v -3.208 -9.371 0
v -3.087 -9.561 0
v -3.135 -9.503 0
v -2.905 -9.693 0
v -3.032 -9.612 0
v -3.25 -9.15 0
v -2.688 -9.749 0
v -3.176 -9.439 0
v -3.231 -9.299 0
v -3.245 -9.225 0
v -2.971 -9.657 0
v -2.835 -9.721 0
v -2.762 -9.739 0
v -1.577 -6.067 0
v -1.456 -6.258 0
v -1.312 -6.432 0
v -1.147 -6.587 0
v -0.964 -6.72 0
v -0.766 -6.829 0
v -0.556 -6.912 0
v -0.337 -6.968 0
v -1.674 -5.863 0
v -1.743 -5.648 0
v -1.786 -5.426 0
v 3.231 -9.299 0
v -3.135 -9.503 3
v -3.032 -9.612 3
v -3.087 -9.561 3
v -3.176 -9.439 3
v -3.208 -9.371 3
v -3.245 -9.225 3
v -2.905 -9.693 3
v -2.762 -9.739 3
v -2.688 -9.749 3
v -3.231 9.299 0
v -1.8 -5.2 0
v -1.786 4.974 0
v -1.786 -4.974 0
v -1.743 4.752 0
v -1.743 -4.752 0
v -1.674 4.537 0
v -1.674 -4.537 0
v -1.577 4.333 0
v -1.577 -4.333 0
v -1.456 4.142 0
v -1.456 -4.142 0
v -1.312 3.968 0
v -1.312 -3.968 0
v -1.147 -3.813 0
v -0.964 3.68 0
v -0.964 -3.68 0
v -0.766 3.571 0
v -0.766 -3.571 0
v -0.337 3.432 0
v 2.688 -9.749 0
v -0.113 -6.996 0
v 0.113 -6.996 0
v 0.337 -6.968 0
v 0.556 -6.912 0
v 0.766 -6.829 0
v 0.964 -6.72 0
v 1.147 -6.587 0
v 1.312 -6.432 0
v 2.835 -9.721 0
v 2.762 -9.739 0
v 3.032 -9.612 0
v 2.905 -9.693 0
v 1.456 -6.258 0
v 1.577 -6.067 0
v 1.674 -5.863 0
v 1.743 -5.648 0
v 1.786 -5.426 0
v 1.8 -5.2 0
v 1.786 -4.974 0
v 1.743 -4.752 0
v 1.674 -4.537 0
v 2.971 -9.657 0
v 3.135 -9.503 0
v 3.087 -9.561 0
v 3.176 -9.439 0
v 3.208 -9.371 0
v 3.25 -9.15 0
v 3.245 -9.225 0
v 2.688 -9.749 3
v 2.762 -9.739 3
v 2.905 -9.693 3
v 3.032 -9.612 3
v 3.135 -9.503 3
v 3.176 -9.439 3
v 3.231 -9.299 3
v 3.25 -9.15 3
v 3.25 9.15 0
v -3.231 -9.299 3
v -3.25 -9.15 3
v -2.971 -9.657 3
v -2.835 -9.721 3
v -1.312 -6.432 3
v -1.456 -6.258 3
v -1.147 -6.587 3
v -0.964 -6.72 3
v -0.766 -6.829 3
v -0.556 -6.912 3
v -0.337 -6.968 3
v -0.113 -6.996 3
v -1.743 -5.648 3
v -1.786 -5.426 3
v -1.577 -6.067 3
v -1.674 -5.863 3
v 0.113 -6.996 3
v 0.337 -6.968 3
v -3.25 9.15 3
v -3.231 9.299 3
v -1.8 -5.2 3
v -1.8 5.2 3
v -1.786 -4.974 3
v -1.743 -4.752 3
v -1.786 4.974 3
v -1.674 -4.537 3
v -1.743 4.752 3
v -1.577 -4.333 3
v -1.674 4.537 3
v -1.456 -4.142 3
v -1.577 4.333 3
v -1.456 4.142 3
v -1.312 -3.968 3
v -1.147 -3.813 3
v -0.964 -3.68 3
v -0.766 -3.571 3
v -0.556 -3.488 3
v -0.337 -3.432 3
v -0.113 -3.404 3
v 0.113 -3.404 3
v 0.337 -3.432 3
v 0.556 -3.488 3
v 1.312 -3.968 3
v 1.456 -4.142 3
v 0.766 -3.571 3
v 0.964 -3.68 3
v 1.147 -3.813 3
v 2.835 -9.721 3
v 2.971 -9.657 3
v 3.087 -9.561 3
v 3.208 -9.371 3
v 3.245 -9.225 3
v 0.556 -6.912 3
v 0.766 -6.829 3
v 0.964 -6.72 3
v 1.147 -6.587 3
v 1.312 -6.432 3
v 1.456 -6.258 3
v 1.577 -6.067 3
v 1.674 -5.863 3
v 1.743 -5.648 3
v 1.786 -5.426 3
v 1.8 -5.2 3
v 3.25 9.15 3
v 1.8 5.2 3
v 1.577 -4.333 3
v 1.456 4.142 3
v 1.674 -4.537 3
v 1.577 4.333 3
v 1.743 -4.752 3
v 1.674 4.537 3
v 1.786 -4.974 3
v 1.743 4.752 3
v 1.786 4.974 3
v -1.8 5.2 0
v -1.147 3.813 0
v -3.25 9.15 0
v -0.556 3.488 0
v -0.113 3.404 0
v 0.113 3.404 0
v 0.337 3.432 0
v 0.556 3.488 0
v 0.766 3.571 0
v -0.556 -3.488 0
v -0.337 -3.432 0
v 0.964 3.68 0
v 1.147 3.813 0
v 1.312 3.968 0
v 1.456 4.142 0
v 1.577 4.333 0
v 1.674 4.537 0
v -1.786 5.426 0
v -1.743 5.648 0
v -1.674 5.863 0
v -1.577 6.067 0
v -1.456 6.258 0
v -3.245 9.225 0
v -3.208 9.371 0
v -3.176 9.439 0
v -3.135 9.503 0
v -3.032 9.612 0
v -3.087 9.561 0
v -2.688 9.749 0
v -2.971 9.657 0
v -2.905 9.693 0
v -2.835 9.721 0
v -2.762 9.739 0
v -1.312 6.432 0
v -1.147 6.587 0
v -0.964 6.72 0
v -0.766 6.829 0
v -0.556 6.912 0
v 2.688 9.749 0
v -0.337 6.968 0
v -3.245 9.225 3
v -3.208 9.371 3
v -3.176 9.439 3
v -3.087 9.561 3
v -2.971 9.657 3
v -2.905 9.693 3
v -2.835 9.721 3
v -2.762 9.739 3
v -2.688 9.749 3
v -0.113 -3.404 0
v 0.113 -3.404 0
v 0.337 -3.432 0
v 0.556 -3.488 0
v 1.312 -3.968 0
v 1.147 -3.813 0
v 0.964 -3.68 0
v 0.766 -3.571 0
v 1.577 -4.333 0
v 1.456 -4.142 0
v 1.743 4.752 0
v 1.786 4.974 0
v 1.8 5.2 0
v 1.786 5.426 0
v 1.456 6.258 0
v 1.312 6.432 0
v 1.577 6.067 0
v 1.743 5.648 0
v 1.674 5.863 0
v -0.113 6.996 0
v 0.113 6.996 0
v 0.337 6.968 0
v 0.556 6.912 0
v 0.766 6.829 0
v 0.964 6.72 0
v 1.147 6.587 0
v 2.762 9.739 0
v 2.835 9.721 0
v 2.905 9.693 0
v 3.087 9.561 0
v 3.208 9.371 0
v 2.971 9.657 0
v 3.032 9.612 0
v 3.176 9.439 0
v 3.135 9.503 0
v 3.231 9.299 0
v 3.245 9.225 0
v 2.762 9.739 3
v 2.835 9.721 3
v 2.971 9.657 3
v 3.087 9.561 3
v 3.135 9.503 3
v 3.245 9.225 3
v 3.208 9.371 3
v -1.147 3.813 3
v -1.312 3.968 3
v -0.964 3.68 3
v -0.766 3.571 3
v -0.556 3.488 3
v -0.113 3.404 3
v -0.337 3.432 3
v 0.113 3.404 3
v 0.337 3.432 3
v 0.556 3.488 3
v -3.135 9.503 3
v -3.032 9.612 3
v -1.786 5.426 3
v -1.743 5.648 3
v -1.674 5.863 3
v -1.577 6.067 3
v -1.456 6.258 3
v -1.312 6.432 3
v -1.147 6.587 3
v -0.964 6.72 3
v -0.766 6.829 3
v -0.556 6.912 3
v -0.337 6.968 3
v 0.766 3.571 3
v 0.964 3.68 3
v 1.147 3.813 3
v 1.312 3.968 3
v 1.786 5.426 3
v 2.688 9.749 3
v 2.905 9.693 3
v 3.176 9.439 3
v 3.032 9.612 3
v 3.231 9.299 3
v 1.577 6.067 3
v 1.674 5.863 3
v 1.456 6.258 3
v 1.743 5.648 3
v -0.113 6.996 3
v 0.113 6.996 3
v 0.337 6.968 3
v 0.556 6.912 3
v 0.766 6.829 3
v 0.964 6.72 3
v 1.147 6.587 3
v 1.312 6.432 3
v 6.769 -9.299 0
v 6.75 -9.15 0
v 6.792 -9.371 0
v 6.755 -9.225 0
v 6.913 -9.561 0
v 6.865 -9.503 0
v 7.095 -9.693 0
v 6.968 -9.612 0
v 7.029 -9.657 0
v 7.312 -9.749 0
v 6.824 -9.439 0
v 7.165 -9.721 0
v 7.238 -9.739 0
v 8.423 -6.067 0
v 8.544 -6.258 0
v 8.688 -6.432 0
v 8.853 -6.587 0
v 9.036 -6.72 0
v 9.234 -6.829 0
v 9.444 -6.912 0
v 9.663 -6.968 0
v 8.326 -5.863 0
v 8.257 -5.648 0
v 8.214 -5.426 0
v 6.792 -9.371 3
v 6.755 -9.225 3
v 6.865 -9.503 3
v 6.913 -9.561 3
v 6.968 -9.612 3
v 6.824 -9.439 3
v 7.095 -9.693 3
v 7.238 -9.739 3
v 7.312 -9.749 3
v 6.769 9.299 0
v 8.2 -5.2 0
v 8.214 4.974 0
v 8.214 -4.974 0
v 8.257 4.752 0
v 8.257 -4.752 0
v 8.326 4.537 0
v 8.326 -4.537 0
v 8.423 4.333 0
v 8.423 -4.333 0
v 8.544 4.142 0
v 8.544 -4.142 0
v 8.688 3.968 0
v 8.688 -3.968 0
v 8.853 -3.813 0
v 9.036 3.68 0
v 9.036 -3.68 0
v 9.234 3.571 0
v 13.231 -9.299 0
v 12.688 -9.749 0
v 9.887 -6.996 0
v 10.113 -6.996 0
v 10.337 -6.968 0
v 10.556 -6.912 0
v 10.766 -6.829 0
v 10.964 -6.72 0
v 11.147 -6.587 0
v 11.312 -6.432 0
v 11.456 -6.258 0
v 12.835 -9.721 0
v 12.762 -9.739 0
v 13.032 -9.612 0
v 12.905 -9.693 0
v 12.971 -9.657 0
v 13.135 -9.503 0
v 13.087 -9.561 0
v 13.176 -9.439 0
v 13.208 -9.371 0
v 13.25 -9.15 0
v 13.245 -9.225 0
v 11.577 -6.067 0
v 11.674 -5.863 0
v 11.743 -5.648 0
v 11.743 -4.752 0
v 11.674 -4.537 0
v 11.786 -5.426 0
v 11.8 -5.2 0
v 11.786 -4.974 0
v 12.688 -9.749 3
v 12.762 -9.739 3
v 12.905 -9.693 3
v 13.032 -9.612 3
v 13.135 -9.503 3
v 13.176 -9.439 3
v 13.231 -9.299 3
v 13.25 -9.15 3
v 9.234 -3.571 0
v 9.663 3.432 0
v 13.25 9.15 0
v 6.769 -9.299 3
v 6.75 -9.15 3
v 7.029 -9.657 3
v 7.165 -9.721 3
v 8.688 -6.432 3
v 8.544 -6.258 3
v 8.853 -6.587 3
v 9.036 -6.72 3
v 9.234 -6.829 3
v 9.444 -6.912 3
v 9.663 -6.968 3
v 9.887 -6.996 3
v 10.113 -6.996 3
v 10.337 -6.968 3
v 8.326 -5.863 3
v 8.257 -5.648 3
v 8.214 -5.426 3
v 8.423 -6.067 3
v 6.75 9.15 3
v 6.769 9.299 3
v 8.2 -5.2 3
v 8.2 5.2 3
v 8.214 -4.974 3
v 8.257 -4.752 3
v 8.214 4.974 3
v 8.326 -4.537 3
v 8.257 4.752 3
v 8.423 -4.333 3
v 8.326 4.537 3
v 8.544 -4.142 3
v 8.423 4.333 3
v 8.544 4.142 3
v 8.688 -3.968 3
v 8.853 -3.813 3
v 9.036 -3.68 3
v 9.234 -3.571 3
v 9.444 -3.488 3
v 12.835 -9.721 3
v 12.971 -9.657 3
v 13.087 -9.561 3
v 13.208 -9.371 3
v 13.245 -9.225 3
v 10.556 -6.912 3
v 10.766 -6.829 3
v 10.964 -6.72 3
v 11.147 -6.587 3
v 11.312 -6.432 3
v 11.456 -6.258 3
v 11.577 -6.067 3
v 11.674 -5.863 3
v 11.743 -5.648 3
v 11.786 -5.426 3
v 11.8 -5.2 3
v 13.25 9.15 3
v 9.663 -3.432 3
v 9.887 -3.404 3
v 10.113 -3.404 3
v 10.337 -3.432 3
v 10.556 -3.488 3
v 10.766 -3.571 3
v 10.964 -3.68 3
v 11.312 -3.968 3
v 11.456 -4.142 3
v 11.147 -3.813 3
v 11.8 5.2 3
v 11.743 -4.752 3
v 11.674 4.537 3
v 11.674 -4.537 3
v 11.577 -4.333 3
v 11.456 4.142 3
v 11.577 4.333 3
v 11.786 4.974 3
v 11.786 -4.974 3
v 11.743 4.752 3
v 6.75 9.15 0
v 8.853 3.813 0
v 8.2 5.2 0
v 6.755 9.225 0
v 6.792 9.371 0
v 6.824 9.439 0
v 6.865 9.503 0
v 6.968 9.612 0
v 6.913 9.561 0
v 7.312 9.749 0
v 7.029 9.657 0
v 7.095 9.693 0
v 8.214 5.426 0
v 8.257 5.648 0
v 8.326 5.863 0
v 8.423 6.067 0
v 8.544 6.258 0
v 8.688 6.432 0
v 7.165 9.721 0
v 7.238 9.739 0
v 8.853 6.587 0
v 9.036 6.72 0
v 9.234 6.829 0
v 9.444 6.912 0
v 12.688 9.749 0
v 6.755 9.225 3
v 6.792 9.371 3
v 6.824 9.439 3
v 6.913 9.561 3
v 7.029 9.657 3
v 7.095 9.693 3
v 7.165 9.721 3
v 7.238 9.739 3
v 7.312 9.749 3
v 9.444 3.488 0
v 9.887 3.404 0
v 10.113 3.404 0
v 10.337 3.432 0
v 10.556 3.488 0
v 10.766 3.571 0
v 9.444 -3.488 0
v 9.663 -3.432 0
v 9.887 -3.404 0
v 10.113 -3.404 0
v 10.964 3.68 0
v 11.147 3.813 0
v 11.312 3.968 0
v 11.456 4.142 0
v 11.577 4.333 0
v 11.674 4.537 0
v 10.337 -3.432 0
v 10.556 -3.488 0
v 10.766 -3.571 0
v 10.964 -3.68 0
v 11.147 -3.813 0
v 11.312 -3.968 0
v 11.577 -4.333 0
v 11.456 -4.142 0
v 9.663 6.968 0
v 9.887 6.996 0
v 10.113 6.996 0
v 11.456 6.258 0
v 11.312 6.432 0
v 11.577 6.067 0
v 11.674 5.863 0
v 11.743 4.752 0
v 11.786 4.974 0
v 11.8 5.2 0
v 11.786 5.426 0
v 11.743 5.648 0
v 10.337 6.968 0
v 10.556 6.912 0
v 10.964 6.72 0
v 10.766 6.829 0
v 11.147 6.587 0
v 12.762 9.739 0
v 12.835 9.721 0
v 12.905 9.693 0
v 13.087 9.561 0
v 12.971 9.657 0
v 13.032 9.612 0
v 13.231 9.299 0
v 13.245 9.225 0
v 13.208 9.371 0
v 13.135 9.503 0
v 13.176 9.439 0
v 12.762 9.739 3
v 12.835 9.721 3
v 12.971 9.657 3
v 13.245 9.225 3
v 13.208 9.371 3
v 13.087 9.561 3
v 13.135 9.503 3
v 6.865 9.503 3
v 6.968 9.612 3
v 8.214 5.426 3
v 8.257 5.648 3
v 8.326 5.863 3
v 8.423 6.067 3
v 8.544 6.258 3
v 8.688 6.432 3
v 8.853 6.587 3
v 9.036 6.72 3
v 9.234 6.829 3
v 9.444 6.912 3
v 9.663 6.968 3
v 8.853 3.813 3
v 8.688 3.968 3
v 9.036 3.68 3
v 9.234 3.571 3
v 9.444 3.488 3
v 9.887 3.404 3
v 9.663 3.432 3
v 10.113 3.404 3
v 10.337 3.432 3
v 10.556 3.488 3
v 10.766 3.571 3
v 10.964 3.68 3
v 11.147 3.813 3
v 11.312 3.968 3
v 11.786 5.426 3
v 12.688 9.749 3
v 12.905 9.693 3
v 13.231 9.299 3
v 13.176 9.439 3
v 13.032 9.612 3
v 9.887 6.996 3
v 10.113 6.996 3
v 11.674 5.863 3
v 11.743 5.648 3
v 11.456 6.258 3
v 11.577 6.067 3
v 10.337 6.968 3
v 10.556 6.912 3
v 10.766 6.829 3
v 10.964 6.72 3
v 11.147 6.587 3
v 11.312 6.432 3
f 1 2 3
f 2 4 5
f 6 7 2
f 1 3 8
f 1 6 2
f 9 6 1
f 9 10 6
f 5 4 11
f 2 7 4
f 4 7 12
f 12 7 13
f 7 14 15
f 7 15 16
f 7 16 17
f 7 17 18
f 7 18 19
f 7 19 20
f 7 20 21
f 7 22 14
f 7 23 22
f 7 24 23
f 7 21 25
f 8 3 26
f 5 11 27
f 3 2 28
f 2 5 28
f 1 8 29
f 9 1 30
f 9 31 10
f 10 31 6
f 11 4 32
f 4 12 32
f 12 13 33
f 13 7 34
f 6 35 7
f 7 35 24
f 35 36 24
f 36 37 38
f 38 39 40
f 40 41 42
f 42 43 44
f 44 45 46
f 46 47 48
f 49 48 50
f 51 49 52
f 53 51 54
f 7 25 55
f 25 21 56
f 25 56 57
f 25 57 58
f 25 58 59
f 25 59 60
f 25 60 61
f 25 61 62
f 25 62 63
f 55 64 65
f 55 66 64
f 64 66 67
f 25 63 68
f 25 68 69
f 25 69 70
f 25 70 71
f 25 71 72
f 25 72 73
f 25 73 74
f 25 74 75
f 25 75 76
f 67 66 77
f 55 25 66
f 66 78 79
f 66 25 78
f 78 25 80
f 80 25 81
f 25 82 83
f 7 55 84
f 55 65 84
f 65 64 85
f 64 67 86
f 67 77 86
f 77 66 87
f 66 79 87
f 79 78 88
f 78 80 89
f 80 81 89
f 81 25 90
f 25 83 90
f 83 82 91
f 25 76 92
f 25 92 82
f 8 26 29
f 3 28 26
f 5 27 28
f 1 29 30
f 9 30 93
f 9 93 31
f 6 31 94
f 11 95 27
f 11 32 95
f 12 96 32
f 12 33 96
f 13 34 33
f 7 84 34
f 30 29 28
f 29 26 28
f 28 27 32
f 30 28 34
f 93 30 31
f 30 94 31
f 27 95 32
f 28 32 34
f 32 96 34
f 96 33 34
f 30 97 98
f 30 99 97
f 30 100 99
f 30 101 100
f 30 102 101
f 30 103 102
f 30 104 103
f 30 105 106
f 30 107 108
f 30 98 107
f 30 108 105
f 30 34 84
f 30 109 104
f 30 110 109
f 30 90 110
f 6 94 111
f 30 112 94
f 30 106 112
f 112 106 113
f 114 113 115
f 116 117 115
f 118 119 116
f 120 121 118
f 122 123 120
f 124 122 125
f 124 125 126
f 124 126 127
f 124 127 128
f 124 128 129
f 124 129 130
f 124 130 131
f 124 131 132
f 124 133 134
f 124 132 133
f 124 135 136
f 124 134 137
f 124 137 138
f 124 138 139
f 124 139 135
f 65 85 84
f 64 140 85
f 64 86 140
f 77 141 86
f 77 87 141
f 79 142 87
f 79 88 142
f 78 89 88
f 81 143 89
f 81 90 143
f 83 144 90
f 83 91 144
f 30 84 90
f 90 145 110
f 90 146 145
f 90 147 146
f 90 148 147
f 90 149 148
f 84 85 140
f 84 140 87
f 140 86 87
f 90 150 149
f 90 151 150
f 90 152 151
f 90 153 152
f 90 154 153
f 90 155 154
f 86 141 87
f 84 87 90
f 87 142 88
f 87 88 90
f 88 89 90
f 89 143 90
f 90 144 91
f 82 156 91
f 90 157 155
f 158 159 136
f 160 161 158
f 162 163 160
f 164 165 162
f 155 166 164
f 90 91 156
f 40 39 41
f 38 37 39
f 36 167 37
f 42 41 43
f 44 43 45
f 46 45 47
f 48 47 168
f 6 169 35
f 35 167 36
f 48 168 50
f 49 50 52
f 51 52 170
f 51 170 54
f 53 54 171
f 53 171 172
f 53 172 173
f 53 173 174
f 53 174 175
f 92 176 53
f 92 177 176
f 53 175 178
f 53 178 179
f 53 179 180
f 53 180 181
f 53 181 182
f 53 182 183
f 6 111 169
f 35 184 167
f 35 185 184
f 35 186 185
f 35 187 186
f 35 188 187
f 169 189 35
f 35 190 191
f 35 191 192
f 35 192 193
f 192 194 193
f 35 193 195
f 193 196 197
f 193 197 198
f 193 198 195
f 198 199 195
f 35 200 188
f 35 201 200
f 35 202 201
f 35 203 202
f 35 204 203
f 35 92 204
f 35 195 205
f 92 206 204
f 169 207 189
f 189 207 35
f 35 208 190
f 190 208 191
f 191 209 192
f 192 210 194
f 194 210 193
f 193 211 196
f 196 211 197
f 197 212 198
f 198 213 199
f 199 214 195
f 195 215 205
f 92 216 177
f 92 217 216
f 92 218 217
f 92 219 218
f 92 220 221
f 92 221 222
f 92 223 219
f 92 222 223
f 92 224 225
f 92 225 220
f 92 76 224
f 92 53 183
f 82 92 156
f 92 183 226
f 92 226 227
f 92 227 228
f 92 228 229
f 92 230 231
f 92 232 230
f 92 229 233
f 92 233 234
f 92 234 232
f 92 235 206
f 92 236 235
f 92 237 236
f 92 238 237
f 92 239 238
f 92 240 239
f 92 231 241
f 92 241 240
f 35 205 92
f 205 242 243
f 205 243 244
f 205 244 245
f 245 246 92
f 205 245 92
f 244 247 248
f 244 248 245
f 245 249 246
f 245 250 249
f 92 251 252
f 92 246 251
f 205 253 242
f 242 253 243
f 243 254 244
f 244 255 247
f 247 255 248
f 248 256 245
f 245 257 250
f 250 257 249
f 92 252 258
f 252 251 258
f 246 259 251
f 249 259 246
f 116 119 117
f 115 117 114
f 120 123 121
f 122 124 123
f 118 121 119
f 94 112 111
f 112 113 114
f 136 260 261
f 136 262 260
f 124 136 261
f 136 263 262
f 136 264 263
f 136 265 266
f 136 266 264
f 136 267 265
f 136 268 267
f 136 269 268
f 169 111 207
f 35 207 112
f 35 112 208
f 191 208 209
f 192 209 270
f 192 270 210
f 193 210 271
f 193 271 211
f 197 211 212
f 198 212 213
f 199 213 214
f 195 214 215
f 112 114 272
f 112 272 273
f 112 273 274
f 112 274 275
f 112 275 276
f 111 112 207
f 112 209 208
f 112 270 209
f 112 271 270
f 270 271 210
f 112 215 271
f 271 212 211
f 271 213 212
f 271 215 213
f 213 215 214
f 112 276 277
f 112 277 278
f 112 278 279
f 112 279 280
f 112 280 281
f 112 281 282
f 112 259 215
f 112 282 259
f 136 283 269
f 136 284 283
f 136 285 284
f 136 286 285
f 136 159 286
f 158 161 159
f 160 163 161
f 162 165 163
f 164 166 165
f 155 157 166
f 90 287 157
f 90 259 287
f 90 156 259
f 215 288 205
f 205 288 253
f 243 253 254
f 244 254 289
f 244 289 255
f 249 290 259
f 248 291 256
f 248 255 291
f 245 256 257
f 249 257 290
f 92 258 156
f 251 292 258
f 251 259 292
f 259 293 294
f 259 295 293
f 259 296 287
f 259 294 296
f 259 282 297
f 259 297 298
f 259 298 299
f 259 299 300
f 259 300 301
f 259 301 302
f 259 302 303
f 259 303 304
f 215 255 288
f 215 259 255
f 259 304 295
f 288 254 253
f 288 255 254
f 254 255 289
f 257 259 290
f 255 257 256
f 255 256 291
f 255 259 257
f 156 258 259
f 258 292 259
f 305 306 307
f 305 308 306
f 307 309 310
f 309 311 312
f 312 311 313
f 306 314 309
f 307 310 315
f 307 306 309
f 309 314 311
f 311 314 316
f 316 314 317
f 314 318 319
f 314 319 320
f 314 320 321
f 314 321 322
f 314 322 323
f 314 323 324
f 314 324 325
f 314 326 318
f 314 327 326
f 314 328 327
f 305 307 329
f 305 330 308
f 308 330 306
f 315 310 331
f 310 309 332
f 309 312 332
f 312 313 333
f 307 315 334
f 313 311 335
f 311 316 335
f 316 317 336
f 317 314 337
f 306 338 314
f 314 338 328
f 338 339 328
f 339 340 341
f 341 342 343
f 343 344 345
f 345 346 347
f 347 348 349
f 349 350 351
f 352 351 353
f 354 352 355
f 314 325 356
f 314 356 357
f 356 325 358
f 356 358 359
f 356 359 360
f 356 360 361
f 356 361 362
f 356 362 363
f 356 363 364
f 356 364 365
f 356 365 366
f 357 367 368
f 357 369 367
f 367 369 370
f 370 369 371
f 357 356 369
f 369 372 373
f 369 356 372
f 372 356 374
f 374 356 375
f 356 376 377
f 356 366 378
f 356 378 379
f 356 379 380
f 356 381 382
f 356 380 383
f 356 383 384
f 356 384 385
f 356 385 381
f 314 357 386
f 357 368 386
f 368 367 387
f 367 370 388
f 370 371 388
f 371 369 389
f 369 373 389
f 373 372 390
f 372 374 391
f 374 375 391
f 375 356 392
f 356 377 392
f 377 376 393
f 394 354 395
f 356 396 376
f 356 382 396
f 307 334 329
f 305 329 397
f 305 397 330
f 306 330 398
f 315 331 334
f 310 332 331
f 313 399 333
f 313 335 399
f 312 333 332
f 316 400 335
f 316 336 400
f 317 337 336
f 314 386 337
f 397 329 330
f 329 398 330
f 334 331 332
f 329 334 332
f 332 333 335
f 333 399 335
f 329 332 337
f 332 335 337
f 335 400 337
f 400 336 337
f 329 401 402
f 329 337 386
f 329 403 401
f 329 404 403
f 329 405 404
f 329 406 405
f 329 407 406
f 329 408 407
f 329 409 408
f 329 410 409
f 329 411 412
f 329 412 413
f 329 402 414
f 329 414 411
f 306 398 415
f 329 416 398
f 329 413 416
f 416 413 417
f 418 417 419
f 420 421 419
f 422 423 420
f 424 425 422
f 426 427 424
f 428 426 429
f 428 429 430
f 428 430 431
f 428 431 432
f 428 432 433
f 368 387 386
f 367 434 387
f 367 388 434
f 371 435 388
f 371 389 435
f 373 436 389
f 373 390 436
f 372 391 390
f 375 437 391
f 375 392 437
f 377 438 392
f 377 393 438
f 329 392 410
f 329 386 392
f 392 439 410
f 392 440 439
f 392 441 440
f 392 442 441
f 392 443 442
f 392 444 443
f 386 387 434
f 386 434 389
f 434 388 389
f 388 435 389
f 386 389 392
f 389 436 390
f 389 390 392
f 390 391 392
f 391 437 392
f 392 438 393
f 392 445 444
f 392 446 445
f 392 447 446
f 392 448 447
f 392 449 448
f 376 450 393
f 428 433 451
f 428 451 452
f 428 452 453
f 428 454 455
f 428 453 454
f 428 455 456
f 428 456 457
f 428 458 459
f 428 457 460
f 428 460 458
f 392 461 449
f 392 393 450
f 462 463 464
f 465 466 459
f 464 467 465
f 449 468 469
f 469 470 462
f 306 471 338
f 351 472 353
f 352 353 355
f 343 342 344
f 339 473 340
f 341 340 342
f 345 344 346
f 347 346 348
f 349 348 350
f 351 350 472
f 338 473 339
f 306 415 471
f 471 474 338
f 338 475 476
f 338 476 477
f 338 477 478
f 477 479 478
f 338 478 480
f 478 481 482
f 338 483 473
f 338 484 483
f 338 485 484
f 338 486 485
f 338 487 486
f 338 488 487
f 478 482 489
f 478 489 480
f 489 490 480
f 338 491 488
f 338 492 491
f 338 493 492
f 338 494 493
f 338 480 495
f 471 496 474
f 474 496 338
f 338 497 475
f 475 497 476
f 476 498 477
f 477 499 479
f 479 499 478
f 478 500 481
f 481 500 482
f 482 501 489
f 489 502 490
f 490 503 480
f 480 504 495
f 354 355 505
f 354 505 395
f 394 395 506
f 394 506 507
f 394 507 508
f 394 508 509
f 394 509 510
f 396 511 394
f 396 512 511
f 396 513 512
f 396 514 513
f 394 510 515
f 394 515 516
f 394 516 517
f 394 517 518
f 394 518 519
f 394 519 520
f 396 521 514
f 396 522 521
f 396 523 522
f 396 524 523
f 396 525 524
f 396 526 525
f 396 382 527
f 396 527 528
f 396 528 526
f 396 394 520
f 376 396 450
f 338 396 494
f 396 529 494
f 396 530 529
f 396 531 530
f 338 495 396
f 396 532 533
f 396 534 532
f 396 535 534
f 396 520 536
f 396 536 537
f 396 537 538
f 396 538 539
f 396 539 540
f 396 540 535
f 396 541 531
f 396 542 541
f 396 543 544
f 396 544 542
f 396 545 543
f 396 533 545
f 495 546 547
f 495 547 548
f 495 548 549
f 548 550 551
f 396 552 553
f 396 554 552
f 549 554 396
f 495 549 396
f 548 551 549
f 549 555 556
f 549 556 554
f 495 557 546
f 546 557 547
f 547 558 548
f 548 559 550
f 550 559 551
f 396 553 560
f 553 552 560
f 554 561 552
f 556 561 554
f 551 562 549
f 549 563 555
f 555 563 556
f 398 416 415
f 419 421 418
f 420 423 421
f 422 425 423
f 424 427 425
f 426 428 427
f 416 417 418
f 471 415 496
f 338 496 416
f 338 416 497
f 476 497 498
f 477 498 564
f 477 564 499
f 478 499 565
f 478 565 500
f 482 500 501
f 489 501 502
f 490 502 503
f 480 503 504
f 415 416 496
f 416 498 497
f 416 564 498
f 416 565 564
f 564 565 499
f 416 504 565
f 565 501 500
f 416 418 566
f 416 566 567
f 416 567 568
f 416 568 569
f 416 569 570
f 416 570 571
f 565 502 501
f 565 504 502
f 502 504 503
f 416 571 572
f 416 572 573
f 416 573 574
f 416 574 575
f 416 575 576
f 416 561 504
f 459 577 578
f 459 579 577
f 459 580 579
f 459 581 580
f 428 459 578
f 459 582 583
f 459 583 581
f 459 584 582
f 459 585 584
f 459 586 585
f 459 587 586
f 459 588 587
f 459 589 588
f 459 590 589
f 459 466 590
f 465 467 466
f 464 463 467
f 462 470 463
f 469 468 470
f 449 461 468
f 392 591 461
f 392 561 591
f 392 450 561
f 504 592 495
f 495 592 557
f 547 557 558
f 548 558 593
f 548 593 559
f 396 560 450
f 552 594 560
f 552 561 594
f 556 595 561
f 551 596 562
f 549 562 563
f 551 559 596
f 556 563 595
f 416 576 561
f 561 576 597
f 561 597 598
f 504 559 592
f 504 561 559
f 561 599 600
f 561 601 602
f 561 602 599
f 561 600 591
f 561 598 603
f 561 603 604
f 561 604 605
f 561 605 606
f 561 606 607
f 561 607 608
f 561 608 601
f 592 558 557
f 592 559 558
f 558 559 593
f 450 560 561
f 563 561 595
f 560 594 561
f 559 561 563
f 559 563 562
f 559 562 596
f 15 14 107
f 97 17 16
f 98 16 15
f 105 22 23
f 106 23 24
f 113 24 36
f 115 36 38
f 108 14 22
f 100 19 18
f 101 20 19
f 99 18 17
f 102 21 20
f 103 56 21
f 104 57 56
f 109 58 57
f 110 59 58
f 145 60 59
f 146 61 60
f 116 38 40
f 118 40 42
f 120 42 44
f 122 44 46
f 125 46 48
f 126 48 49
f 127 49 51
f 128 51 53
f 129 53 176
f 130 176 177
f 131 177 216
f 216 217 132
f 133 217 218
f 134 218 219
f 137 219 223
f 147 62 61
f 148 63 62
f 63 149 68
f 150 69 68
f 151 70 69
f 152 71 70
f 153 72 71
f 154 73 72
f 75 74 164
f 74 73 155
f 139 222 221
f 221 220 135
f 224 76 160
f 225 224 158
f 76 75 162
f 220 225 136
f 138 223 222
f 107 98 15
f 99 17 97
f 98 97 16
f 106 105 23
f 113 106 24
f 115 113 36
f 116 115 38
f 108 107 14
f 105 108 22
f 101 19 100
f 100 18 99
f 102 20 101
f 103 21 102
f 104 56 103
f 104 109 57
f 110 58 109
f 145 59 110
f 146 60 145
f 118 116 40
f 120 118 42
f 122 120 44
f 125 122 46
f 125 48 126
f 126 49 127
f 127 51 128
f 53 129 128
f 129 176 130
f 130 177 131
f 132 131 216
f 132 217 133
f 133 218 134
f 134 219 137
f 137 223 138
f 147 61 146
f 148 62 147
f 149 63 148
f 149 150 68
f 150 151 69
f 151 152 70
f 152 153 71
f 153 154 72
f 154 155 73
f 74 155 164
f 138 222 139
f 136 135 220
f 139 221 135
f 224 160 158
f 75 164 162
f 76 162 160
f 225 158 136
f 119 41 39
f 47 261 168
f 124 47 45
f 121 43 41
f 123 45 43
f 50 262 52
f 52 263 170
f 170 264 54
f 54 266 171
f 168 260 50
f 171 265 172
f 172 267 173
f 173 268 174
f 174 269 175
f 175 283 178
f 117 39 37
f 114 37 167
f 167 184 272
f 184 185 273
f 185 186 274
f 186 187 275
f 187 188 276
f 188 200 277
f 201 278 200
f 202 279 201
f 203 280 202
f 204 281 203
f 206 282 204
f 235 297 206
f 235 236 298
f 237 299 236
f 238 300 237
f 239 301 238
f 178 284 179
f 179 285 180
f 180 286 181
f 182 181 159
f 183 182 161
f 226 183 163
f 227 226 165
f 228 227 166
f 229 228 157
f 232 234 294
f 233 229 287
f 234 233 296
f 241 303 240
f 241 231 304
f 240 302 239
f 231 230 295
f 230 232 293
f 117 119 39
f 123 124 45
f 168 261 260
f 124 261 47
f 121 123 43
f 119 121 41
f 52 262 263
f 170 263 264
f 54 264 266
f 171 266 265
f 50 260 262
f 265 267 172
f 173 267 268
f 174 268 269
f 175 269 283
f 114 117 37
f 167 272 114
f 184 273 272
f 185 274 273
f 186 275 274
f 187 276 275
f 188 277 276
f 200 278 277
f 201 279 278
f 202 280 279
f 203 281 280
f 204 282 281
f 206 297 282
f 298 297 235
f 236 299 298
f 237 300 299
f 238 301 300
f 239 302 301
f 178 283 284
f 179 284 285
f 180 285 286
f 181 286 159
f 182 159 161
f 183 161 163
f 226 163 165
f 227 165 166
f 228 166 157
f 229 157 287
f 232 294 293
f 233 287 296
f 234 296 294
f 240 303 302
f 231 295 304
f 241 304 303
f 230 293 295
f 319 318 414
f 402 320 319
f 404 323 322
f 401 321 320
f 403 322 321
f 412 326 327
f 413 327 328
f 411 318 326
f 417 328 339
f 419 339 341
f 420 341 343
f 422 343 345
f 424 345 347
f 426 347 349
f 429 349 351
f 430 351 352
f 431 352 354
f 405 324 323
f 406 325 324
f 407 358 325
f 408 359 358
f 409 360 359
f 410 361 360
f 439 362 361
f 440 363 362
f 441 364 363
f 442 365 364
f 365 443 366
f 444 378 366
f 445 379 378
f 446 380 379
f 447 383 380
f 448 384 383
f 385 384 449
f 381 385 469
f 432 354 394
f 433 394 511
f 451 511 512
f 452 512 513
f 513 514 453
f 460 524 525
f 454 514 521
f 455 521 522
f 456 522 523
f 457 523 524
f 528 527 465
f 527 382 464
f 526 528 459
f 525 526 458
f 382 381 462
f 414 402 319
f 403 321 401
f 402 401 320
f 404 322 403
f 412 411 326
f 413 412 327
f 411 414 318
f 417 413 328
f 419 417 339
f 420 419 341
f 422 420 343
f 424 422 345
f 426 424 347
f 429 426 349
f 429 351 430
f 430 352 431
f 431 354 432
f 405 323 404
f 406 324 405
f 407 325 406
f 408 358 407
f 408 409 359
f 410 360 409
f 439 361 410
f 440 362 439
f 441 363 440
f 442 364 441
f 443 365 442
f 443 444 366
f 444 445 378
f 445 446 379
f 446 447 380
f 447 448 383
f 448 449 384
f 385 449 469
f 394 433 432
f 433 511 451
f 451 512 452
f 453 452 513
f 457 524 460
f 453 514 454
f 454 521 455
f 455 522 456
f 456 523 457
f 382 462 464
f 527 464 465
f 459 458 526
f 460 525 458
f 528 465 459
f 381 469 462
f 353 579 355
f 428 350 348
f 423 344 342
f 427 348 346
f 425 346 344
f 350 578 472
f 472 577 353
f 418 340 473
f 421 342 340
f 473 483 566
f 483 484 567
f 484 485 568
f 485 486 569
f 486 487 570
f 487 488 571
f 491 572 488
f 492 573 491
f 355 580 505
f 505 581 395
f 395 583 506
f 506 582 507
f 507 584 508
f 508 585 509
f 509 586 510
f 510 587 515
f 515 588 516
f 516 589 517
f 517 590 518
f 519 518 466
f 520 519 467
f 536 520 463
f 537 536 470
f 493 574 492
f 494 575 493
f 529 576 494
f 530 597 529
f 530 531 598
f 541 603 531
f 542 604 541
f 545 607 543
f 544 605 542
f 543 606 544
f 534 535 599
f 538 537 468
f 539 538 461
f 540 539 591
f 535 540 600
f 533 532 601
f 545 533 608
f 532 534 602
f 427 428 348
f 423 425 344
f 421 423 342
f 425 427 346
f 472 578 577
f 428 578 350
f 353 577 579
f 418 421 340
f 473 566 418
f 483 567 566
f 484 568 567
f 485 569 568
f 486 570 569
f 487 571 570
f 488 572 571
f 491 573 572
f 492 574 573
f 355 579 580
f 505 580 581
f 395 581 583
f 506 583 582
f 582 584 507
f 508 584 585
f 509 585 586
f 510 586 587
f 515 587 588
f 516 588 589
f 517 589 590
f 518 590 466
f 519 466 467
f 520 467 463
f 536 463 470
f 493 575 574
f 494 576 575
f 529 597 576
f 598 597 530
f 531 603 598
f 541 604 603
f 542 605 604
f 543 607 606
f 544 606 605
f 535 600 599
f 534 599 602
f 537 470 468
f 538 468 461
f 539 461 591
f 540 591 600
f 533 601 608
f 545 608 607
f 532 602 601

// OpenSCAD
$fn = 50;

difference() {
	union() {
		translate(v = [34.5, 0, 3]) {
			rotate(a = [0, 0, 0]) {
				difference() {
					union() {
						translate(v = [-34.5, 0, -3]) {
							hull() {
								translate(v = [-2.65, 9.15, 0]) {
									cylinder(h = 3, r = 0.6);
								}
								translate(v = [2.65, 9.15, 0]) {
									cylinder(h = 3, r = 0.6);
								}
								translate(v = [-2.65, -9.15, 0]) {
									cylinder(h = 3, r = 0.6);
								}
								translate(v = [2.65, -9.15, 0]) {
									cylinder(h = 3, r = 0.6);
								}
							}
						}
					}
					union() {
						translate(v = [-34.5, -5.2, -4]) {
							cylinder(h = 5, r = 1.8);
						}
						translate(v = [-34.5, 5.2, -4]) {
							cylinder(h = 5, r = 1.8);
						}
					}
				}
			}
		}
		translate(v = [-4.5, 0, 3]) {
			rotate(a = [0, 0, 0]) {
				difference() {
					union() {
						translate(v = [14.5, 0, -3]) {
							hull() {
								translate(v = [-2.65, 9.15, 0]) {
									cylinder(h = 3, r = 0.6);
								}
								translate(v = [2.65, 9.15, 0]) {
									cylinder(h = 3, r = 0.6);
								}
								translate(v = [-2.65, -9.15, 0]) {
									cylinder(h = 3, r = 0.6);
								}
								translate(v = [2.65, -9.15, 0]) {
									cylinder(h = 3, r = 0.6);
								}
							}
						}
					}
					union() {
						translate(v = [14.5, -5.2, -4]) {
							cylinder(h = 5, r = 1.8);
						}
						translate(v = [14.5, 5.2, -4]) {
							cylinder(h = 5, r = 1.8);
						}
					}
				}
			}
		}
	}
	union();
}
